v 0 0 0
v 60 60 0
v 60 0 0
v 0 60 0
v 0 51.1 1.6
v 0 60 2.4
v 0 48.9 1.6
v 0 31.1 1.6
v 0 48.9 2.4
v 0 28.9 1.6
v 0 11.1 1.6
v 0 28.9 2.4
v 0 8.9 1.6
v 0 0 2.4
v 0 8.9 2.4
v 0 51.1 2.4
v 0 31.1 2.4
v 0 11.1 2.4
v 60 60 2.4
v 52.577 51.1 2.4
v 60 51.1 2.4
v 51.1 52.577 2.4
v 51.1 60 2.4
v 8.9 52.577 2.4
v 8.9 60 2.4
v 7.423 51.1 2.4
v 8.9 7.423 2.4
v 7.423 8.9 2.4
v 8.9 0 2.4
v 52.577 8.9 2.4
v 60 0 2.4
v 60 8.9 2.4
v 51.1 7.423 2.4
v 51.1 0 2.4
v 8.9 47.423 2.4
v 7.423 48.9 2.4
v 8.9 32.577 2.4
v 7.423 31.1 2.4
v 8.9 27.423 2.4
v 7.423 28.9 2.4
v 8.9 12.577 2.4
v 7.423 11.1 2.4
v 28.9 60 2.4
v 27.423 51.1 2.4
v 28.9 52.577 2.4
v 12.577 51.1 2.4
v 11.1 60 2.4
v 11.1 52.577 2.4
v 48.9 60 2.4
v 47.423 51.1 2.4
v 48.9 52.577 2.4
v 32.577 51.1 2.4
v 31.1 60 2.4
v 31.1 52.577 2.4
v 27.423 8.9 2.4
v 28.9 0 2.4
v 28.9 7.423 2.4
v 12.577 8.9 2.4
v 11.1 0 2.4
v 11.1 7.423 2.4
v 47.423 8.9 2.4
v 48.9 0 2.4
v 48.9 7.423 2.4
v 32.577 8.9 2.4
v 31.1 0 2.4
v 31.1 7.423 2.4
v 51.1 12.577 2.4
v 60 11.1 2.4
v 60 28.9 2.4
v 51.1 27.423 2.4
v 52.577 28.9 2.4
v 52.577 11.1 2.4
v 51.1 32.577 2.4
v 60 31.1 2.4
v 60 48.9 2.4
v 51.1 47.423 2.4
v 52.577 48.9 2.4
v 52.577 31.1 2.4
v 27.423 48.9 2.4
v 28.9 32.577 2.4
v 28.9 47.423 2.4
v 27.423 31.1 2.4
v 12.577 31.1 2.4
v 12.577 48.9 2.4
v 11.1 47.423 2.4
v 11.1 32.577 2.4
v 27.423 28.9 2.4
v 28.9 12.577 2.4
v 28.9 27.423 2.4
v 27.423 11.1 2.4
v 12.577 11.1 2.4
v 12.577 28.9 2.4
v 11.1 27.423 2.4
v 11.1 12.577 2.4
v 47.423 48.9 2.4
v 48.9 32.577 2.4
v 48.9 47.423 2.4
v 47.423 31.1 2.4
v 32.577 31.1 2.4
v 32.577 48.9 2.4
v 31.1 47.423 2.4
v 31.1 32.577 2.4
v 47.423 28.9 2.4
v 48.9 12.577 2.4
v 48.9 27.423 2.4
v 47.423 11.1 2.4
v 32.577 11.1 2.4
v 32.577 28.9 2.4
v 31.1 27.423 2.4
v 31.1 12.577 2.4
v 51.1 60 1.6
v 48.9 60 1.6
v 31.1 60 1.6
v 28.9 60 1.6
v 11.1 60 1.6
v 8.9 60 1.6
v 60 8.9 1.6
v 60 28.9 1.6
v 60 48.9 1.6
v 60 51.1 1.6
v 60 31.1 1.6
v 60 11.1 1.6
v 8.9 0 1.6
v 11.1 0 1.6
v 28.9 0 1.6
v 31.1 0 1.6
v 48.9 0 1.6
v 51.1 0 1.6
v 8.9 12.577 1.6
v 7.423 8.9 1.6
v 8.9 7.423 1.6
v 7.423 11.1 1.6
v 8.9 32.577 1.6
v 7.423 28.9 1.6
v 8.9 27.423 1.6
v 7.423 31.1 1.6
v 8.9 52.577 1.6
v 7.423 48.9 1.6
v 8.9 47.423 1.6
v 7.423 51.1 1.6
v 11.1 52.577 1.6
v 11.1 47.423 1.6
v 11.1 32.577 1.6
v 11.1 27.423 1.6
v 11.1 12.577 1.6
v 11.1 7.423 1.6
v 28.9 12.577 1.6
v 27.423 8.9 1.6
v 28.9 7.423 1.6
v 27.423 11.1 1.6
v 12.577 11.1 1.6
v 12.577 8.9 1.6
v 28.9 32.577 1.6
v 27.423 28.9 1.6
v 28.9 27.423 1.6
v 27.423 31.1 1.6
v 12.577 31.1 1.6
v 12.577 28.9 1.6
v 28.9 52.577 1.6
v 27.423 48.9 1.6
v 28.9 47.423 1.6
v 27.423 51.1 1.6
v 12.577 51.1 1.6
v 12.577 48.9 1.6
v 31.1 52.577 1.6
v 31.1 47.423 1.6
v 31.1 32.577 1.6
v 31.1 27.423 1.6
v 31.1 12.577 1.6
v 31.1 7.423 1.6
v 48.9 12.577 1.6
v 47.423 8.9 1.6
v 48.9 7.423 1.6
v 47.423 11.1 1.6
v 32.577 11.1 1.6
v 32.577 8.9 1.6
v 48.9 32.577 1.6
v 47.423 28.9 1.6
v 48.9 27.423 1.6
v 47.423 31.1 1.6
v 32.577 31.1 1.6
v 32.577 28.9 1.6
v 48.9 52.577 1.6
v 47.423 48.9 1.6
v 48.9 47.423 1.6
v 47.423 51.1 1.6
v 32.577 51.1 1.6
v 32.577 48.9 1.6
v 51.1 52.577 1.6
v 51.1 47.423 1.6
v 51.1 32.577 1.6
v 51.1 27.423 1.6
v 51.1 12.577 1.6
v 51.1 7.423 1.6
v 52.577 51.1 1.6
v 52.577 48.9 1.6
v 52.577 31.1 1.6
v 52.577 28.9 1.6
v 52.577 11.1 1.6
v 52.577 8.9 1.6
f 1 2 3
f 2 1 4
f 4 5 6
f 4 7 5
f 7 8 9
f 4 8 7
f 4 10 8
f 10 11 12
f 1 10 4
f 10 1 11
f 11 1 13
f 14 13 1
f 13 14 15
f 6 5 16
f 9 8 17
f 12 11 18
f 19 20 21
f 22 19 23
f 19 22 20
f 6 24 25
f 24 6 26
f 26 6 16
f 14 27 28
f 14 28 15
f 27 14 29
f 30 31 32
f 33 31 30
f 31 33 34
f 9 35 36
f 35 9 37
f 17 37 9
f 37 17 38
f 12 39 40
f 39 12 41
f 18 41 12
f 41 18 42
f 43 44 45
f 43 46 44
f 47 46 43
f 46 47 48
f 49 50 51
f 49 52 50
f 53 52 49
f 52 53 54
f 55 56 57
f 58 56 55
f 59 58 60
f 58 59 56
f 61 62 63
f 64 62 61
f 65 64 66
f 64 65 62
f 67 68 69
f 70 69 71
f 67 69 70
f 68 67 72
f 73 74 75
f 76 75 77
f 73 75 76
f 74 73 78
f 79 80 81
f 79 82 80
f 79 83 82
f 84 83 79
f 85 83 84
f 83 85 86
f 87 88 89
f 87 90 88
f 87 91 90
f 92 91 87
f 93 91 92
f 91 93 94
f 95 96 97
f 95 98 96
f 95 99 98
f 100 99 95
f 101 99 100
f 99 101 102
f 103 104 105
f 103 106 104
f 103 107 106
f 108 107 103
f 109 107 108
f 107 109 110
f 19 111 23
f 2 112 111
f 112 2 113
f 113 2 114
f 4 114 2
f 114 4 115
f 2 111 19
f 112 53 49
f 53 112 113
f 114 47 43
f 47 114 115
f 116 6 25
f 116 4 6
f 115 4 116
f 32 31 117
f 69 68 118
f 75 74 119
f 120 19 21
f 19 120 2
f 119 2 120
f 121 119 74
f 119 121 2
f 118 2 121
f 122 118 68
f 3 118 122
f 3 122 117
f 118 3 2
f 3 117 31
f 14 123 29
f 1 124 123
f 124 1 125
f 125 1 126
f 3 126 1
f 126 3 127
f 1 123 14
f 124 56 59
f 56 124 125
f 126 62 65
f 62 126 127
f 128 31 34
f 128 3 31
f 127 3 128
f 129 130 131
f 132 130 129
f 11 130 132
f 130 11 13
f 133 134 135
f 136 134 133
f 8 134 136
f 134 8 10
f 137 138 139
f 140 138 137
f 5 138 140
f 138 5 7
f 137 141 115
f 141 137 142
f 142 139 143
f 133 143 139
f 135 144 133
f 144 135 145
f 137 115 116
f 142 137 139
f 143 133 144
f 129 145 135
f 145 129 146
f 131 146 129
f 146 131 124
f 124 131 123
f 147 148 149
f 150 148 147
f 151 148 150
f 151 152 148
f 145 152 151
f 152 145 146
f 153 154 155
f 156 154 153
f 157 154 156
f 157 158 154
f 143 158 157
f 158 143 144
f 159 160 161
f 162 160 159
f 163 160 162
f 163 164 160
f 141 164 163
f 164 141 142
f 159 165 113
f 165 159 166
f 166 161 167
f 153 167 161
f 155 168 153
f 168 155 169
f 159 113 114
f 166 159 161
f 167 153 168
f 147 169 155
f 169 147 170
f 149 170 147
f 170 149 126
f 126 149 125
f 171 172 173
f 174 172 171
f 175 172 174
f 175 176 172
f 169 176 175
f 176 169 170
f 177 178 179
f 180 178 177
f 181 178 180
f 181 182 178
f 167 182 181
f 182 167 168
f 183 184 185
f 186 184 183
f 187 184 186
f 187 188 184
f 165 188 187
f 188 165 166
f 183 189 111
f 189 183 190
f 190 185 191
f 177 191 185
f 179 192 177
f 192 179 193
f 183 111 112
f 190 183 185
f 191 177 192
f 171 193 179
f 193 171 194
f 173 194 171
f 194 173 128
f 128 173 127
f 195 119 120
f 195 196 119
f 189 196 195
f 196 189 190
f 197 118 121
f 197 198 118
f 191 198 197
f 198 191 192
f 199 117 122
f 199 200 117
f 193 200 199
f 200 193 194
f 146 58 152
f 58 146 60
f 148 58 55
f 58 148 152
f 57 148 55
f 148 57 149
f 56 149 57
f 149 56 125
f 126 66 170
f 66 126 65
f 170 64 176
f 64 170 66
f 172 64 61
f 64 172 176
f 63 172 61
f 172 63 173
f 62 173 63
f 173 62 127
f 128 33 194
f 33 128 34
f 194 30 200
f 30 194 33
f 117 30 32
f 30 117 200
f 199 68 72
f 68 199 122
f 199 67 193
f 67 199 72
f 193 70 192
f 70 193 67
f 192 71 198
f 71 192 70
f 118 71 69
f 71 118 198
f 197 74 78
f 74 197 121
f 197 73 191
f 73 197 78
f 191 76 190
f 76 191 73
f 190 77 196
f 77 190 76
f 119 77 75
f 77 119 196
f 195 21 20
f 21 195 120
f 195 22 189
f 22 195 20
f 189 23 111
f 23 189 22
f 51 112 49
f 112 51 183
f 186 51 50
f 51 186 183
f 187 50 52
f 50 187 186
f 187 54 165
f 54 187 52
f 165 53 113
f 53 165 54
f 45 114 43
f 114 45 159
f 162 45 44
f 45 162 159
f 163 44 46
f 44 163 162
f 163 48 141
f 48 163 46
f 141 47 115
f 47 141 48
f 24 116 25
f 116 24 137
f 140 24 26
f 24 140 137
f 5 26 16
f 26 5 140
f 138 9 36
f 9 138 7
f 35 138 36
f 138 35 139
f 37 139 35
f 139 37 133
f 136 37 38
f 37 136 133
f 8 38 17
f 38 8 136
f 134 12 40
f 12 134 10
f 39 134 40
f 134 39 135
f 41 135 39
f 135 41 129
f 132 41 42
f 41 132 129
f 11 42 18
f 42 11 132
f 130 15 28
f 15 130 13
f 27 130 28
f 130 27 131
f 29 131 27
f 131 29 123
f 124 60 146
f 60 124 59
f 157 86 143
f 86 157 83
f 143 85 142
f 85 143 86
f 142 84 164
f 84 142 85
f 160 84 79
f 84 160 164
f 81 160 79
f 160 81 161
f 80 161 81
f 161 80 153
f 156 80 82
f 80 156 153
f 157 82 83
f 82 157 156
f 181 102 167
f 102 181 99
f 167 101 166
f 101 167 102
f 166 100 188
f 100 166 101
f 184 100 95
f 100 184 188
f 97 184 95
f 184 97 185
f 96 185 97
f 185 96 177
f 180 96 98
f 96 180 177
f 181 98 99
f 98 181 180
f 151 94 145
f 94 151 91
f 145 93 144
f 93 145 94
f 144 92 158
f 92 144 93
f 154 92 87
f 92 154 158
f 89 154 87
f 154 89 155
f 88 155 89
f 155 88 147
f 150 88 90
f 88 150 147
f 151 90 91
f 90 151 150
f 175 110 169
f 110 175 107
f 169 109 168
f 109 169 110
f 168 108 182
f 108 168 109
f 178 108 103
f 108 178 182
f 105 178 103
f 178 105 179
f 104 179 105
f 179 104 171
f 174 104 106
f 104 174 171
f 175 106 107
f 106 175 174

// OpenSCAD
// file: constants.scad
// When parts need to fit together, they'll be given this much distance between
// them.
TOLERANCE = 0.4;

// Length of a "stone" end-to-end.
STONE_LENGTH = 20;

// Width of the arms of a stone.
STONE_WIDTH = 2;

// Width of the base in the center of a stone.
STONE_BASE_WIDTH = 5;

// Height of the arms of a stone.
STONE_ARM_HEIGHT = 1.2;

// Height of the nub that helps to pick up a stone.
STONE_NUB_HEIGHT = 5;

// Height of the nub that helps to pick up a stone.
STONE_NUB_SHEATH_HEIGHT = 2;

// Depth of the grooves in the board, that the stone fits in.
BOARD_GROOVE_DEPTH = 0.8;

// Number of stones along the side of the board.
BOARD_SIZE = 3;

// Height of the board, up to the bottom of the grooves.
BOARD_HEIGHT = 1.6;
// main file
include <constants.scad>

BOARD_SIZE_MM = STONE_LENGTH * BOARD_SIZE;

difference() {
linear_extrude(BOARD_HEIGHT + BOARD_GROOVE_DEPTH)
  square(BOARD_SIZE_MM);

translate([0, 0, BOARD_HEIGHT])
  linear_extrude(BOARD_GROOVE_DEPTH + 1) {
    for (i = [0:BOARD_SIZE - 1]) {
      translate([(i + 0.5) * STONE_LENGTH, BOARD_SIZE_MM/2, 0])
        square([STONE_WIDTH + TOLERANCE/2, BOARD_SIZE_MM + 1], center=true);
    }
  
    for (j = [0:BOARD_SIZE - 1]) {
      translate([BOARD_SIZE_MM/2, (j + 0.5) * STONE_LENGTH, 0])
        square([BOARD_SIZE_MM + 1, STONE_WIDTH + TOLERANCE/2], center=true);
    }

    for (i = [0:BOARD_SIZE - 1]) {
      for (j = [0:BOARD_SIZE - 1]) {
        translate([(i + 0.5) * STONE_LENGTH, (j + 0.5) * STONE_LENGTH, 0])
          rotate([0, 0, 45])
          square(STONE_BASE_WIDTH + TOLERANCE/2, center=true);
      }
    }
  }
}
